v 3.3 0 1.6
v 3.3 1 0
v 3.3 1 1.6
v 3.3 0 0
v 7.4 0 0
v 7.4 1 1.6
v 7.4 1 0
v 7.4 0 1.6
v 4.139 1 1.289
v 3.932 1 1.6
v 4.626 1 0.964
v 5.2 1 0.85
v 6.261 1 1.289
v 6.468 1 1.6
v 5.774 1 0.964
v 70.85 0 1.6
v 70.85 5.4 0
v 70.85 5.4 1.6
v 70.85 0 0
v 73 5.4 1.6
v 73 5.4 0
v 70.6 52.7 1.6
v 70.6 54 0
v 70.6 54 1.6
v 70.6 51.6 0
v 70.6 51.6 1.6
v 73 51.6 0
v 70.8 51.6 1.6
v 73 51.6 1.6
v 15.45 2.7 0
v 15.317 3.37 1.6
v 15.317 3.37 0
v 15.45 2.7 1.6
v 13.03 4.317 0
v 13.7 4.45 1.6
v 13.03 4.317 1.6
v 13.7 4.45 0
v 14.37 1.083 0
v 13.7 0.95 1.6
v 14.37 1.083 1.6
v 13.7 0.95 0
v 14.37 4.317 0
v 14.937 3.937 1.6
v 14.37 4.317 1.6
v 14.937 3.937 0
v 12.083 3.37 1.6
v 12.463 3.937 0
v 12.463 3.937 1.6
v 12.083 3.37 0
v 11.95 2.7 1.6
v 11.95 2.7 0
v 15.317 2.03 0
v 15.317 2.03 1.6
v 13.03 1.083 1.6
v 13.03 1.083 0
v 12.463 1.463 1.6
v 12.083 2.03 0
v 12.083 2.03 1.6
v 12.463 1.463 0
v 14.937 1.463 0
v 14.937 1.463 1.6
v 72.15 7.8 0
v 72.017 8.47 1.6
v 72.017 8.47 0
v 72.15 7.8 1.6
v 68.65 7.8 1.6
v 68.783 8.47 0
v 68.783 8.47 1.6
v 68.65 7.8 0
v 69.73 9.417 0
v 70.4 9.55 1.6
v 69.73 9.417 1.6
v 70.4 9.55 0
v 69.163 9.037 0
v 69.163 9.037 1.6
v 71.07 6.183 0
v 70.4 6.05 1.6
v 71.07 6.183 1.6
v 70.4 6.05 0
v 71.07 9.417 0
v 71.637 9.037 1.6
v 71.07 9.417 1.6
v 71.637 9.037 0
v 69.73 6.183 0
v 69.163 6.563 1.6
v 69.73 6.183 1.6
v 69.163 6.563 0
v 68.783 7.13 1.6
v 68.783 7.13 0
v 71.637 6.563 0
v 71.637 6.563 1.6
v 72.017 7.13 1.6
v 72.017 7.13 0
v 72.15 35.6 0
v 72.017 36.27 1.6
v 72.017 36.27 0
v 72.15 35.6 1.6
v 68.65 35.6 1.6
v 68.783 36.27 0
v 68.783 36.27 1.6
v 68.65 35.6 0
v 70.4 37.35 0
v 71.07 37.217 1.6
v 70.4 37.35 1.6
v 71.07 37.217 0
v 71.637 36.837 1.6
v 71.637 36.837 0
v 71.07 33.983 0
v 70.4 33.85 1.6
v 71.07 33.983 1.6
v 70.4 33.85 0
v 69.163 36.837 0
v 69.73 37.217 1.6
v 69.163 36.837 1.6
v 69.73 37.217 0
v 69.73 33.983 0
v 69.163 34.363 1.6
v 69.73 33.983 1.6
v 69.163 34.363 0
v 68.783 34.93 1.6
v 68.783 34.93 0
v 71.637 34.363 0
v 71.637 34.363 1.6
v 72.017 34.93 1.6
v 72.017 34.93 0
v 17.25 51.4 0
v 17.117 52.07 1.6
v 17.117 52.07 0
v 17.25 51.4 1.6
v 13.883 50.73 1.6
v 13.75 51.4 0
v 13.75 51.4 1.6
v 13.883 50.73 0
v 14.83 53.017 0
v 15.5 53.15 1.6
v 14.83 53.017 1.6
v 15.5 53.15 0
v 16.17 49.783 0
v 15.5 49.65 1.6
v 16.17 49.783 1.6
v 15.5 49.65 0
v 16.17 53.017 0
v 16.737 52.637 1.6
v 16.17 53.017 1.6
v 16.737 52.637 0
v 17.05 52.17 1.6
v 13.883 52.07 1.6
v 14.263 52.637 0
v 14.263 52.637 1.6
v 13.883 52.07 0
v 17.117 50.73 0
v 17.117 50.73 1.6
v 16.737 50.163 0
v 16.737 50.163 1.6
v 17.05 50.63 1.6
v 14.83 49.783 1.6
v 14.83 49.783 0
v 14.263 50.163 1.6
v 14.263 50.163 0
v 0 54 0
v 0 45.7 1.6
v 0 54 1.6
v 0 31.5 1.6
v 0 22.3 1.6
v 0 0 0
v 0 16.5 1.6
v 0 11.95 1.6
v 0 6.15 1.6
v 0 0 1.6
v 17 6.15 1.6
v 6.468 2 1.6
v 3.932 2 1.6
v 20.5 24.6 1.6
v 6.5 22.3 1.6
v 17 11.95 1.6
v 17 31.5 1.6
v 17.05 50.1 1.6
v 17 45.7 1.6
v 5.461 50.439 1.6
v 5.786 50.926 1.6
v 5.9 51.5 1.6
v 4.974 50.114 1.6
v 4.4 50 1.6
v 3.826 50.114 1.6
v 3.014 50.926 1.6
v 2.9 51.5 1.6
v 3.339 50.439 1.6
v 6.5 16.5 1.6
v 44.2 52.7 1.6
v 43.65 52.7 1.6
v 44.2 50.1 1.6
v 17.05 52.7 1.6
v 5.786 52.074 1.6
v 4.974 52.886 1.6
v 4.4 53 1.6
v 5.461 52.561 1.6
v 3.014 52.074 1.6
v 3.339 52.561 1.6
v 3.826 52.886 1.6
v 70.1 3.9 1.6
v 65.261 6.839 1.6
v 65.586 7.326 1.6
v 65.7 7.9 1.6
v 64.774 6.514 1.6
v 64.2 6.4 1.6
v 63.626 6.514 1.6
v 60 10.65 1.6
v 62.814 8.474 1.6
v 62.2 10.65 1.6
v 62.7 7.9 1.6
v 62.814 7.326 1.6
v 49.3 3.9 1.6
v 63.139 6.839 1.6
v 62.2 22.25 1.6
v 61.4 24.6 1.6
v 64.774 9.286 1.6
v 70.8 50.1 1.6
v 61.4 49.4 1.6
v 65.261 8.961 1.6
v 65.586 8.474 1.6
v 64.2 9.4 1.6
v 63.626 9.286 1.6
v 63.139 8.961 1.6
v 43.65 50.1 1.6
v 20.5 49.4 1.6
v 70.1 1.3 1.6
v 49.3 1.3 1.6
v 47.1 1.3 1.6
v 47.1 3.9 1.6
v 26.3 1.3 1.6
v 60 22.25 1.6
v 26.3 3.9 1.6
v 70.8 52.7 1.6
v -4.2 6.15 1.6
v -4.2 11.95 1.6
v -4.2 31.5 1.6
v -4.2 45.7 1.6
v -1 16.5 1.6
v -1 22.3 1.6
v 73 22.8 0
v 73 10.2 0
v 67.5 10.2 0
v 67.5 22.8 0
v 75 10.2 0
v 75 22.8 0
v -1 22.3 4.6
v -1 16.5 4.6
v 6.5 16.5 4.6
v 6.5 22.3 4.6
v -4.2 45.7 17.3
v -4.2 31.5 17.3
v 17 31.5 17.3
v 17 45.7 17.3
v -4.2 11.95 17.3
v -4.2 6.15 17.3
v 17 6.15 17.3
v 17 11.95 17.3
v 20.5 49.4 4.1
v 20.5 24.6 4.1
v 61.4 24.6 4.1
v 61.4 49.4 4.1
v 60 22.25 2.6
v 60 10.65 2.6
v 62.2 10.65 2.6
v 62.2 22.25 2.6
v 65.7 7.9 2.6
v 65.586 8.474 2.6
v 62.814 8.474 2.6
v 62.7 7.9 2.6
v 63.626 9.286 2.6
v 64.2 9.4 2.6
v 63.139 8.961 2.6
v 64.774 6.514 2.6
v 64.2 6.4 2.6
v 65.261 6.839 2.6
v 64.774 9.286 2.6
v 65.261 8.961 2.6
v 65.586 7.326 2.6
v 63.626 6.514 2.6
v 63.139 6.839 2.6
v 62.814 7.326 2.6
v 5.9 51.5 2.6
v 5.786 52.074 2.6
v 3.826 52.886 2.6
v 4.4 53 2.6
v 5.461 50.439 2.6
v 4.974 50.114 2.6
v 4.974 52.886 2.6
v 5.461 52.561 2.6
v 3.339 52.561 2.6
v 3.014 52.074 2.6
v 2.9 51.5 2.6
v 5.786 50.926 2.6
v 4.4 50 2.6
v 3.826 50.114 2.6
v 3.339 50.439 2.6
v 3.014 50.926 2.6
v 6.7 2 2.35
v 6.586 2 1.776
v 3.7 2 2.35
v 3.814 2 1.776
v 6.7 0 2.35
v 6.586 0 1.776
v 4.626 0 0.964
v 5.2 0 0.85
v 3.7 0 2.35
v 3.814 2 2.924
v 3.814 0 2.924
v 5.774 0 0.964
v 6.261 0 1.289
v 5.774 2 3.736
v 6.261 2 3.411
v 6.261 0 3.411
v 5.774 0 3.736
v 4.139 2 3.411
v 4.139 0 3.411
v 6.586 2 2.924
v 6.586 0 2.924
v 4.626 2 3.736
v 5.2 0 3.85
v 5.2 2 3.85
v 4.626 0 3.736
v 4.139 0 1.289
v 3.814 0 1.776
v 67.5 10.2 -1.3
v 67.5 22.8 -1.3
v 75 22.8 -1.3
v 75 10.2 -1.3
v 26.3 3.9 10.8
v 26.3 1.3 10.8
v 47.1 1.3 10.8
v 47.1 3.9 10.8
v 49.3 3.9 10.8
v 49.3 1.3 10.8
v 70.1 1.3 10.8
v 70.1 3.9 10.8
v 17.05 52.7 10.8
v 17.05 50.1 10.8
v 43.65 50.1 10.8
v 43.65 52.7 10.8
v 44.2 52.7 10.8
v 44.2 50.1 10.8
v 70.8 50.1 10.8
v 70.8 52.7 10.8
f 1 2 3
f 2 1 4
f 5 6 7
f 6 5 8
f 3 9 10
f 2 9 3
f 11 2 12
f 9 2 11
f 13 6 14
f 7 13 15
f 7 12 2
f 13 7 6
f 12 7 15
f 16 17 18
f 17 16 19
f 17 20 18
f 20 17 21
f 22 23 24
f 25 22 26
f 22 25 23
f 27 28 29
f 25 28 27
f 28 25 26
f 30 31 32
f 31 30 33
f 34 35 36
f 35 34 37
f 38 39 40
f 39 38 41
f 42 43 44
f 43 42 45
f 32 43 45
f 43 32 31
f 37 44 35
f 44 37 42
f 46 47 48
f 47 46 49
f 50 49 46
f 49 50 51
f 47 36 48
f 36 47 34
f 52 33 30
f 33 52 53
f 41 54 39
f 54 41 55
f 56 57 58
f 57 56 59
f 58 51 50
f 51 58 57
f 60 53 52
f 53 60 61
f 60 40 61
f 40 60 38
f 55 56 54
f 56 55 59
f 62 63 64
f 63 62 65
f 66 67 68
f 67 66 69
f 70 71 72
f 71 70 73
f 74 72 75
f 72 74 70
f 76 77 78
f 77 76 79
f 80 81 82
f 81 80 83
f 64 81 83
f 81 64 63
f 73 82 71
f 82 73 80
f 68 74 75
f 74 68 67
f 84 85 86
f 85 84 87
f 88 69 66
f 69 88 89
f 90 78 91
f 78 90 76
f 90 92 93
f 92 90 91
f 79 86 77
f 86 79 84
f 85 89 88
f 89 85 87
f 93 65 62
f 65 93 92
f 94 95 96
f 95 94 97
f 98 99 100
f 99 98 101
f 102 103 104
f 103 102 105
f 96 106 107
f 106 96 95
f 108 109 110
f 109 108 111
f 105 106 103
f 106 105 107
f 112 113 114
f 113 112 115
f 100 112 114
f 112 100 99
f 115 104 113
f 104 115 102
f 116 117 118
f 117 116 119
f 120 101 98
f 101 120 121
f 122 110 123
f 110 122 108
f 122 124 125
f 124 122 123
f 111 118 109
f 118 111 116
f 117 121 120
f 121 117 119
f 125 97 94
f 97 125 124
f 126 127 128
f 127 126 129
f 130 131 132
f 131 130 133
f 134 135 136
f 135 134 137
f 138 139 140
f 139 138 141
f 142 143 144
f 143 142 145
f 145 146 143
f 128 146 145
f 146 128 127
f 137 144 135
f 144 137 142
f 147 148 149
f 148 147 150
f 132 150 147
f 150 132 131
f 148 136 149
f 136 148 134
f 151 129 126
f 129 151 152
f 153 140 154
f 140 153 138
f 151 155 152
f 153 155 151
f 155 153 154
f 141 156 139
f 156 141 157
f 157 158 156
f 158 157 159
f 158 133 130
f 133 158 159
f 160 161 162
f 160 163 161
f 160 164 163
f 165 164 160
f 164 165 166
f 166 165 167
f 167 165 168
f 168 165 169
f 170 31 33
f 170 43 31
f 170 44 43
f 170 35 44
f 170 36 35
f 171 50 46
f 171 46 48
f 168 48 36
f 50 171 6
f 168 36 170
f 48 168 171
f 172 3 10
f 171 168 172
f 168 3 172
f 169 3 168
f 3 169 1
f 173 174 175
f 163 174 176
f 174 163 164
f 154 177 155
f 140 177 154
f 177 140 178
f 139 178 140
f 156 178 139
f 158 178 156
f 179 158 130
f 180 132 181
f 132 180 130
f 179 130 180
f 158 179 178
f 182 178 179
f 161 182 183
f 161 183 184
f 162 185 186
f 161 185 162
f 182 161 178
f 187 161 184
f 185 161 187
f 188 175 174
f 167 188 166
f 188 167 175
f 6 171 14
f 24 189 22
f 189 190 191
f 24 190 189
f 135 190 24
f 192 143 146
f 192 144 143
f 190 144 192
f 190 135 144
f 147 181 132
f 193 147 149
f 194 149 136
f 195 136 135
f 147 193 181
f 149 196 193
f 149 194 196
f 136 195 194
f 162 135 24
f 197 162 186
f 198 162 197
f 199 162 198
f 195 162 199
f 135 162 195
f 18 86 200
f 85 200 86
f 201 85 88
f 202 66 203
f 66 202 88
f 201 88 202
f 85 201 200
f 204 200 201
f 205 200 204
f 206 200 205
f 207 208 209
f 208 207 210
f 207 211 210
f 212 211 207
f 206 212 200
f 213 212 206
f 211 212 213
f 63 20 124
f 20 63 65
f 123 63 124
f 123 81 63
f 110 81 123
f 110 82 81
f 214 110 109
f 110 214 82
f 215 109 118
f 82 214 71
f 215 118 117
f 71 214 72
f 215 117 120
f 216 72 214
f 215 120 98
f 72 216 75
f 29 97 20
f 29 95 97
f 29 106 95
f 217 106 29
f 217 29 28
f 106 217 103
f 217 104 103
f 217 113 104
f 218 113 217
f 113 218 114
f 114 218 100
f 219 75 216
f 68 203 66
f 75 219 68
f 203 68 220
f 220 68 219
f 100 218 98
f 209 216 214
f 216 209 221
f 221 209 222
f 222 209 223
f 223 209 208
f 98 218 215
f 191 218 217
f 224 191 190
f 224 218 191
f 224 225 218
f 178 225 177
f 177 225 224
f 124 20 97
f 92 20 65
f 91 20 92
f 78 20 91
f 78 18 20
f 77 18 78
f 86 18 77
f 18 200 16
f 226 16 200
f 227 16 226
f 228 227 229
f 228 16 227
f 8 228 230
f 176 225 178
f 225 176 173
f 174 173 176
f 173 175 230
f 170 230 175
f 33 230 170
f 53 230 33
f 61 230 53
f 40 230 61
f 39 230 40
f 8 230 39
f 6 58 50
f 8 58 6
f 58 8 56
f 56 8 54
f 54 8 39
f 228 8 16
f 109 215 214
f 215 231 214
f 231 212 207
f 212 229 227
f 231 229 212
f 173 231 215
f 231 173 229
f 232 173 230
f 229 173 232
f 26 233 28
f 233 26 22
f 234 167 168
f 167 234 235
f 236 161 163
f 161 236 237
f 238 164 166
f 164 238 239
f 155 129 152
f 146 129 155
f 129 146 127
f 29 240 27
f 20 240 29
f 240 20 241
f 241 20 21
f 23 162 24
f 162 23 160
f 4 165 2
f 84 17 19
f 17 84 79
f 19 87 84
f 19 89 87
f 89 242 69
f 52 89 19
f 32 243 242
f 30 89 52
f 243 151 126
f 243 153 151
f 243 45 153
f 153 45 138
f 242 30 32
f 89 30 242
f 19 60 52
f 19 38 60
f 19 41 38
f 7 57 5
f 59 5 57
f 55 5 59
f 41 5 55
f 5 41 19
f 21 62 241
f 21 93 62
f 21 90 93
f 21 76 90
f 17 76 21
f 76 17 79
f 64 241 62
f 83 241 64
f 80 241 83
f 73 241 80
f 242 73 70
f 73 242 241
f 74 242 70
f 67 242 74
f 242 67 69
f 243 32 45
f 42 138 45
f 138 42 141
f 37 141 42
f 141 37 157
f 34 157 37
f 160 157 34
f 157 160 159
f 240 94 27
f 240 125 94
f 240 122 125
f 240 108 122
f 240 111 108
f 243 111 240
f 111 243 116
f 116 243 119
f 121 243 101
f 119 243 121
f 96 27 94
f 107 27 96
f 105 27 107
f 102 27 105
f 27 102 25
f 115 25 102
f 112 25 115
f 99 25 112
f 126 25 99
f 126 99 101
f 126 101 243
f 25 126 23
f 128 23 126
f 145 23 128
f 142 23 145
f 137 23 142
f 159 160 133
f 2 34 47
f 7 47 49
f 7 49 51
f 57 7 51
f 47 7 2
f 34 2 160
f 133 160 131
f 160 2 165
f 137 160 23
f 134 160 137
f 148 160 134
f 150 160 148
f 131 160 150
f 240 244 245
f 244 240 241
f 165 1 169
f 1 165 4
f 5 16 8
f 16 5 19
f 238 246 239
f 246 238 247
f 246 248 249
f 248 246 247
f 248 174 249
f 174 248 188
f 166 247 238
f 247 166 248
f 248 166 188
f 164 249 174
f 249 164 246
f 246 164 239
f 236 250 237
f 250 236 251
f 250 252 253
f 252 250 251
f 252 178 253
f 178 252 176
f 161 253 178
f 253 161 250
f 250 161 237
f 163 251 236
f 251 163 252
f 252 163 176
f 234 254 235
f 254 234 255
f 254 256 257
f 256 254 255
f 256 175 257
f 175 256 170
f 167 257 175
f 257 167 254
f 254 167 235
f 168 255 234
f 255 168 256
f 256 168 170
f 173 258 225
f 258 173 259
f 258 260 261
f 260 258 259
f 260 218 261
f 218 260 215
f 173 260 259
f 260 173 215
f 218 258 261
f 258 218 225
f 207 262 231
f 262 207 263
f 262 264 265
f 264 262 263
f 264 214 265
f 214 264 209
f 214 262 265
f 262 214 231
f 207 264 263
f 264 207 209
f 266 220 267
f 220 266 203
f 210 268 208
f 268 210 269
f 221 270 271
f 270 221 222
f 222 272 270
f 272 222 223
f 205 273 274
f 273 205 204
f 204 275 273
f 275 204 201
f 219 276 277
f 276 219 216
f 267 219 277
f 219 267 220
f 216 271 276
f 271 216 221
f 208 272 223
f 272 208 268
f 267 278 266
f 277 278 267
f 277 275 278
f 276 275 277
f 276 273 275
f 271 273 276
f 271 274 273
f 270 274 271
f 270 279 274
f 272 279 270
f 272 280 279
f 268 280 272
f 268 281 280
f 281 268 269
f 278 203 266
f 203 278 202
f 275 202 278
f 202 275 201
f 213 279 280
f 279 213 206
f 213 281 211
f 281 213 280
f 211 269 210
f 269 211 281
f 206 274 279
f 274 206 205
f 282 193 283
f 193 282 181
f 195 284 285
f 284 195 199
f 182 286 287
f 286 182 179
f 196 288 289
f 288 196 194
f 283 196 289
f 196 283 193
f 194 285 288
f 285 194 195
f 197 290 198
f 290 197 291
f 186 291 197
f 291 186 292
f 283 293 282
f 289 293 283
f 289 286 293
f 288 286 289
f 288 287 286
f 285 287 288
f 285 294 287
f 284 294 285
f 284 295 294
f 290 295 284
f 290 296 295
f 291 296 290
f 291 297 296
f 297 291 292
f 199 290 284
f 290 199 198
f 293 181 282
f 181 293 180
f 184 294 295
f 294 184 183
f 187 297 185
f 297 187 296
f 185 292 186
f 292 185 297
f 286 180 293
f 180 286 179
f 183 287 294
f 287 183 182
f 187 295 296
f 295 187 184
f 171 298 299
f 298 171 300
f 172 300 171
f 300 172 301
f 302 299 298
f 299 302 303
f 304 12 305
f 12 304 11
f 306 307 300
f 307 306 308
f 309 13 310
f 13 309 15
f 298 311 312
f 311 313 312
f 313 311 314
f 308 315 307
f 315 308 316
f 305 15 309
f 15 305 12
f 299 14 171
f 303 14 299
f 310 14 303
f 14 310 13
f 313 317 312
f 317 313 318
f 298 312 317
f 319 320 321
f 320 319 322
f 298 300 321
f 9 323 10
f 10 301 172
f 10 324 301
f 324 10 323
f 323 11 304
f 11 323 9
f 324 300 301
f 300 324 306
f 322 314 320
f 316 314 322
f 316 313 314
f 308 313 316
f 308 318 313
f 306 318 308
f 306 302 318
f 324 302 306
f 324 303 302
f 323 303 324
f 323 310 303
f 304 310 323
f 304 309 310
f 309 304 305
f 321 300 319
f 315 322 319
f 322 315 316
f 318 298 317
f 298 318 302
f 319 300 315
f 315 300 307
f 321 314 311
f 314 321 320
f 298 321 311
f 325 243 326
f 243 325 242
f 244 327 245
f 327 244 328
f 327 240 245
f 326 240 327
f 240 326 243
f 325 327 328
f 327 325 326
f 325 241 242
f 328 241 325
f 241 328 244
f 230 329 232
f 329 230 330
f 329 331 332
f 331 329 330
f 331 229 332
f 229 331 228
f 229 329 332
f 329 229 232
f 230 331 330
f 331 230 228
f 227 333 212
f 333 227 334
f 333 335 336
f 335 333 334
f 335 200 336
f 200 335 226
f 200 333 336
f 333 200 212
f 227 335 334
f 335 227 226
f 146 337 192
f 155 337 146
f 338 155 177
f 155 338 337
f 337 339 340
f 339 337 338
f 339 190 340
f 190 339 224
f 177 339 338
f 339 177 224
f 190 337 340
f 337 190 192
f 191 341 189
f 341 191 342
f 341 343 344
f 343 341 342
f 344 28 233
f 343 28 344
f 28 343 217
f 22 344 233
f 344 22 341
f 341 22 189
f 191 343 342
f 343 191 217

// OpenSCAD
// Arduino Yun Mini 3D model for planning

$fn = 16;

length = 73;
width = 54;
height = 1.6;

arduino_yun();

module board() {
    difference() {
        cube([length, width, height]);
        union() {
            translate([3.3, -1,  -1]) cube([7.4-3.3, 1+1, 3]);
            translate([length - 2.15, -1,  -1]) cube([3, 1+5.4, 3]);
            translate([length - 2.4, width - 2.4,  -1]) cube([3, 3, 3]);
            hole(13.7, 2.7);
            hole(length - 2.6, 7.8);
            hole(length - 2.6, 35.6);
            hole(15.5, width - 2.6);
        }
    }
}

module usb_power() {
    translate([-1, 16.5, height]) cube([7.5, 5.8, 3]);
}

module ethernet() {
    translate([-4.2, 31.5, height]) cube([21.2, 14.2, 15.7]);
}

module usb() {
    translate([-4.2, 6.15, height]) cube([21.2, 5.8, 15.7]);
}

module header(x = 0, y = 0, z = 0, length = 10) {
    translate([x, y, z]) cube([length, 2.6, 9.2]);
}

module shield() {
    translate([20.5, 24.6, height]) cube([40.9, 24.8, 2.5]);
}


module leds() {
    translate([length - 1.4 - 11.6, 10.65, height]) cube([2.2, 11.6, 1]);
}

module button(x = 0, y = 0) {
    translate([x, y, height]) cylinder(r = 3/2, h = 1);    
}

module side_button() {
    translate([5.2, 0, height + 3/4]) rotate([-90, 0, 0]) {
        cylinder(r = 3/2, h = 2);    
    }
}

module hole(x = 0, y = 0) {
    translate([x, y, -1]) cylinder(h = 3 + height, r = 3.5/2);
}

module micro_sd() {
    translate([length + 2 - 7.5, 10.2, -1.3]) cube([7.5, 12.6, 1.3]);
}

module arduino_yun() {
    color("green") board();
    color("magenta") usb_power();
    color("yellow") ethernet();
    color("brown") usb();
    color("silver") shield();
    color("red") leds();
    color("blue") button(length - 8.8, 7.9);
    color("blue") button(4.4, width - 2.5);
    color("violet") side_button();
    color("lime") micro_sd();
    color("black") header(x = 26.3, y = 1.3, z = height, length = 20.8);
    color("black") header(x = 49.3, y = 1.3, z = height, length = 20.8);
    color("black") header(x = 17.05, y = width - 1.3 - 2.6, z = height, length = 26.6);
    color("black") header(x = 44.2, y = width - 1.3 - 2.6, z = height, length = 26.6);
}
